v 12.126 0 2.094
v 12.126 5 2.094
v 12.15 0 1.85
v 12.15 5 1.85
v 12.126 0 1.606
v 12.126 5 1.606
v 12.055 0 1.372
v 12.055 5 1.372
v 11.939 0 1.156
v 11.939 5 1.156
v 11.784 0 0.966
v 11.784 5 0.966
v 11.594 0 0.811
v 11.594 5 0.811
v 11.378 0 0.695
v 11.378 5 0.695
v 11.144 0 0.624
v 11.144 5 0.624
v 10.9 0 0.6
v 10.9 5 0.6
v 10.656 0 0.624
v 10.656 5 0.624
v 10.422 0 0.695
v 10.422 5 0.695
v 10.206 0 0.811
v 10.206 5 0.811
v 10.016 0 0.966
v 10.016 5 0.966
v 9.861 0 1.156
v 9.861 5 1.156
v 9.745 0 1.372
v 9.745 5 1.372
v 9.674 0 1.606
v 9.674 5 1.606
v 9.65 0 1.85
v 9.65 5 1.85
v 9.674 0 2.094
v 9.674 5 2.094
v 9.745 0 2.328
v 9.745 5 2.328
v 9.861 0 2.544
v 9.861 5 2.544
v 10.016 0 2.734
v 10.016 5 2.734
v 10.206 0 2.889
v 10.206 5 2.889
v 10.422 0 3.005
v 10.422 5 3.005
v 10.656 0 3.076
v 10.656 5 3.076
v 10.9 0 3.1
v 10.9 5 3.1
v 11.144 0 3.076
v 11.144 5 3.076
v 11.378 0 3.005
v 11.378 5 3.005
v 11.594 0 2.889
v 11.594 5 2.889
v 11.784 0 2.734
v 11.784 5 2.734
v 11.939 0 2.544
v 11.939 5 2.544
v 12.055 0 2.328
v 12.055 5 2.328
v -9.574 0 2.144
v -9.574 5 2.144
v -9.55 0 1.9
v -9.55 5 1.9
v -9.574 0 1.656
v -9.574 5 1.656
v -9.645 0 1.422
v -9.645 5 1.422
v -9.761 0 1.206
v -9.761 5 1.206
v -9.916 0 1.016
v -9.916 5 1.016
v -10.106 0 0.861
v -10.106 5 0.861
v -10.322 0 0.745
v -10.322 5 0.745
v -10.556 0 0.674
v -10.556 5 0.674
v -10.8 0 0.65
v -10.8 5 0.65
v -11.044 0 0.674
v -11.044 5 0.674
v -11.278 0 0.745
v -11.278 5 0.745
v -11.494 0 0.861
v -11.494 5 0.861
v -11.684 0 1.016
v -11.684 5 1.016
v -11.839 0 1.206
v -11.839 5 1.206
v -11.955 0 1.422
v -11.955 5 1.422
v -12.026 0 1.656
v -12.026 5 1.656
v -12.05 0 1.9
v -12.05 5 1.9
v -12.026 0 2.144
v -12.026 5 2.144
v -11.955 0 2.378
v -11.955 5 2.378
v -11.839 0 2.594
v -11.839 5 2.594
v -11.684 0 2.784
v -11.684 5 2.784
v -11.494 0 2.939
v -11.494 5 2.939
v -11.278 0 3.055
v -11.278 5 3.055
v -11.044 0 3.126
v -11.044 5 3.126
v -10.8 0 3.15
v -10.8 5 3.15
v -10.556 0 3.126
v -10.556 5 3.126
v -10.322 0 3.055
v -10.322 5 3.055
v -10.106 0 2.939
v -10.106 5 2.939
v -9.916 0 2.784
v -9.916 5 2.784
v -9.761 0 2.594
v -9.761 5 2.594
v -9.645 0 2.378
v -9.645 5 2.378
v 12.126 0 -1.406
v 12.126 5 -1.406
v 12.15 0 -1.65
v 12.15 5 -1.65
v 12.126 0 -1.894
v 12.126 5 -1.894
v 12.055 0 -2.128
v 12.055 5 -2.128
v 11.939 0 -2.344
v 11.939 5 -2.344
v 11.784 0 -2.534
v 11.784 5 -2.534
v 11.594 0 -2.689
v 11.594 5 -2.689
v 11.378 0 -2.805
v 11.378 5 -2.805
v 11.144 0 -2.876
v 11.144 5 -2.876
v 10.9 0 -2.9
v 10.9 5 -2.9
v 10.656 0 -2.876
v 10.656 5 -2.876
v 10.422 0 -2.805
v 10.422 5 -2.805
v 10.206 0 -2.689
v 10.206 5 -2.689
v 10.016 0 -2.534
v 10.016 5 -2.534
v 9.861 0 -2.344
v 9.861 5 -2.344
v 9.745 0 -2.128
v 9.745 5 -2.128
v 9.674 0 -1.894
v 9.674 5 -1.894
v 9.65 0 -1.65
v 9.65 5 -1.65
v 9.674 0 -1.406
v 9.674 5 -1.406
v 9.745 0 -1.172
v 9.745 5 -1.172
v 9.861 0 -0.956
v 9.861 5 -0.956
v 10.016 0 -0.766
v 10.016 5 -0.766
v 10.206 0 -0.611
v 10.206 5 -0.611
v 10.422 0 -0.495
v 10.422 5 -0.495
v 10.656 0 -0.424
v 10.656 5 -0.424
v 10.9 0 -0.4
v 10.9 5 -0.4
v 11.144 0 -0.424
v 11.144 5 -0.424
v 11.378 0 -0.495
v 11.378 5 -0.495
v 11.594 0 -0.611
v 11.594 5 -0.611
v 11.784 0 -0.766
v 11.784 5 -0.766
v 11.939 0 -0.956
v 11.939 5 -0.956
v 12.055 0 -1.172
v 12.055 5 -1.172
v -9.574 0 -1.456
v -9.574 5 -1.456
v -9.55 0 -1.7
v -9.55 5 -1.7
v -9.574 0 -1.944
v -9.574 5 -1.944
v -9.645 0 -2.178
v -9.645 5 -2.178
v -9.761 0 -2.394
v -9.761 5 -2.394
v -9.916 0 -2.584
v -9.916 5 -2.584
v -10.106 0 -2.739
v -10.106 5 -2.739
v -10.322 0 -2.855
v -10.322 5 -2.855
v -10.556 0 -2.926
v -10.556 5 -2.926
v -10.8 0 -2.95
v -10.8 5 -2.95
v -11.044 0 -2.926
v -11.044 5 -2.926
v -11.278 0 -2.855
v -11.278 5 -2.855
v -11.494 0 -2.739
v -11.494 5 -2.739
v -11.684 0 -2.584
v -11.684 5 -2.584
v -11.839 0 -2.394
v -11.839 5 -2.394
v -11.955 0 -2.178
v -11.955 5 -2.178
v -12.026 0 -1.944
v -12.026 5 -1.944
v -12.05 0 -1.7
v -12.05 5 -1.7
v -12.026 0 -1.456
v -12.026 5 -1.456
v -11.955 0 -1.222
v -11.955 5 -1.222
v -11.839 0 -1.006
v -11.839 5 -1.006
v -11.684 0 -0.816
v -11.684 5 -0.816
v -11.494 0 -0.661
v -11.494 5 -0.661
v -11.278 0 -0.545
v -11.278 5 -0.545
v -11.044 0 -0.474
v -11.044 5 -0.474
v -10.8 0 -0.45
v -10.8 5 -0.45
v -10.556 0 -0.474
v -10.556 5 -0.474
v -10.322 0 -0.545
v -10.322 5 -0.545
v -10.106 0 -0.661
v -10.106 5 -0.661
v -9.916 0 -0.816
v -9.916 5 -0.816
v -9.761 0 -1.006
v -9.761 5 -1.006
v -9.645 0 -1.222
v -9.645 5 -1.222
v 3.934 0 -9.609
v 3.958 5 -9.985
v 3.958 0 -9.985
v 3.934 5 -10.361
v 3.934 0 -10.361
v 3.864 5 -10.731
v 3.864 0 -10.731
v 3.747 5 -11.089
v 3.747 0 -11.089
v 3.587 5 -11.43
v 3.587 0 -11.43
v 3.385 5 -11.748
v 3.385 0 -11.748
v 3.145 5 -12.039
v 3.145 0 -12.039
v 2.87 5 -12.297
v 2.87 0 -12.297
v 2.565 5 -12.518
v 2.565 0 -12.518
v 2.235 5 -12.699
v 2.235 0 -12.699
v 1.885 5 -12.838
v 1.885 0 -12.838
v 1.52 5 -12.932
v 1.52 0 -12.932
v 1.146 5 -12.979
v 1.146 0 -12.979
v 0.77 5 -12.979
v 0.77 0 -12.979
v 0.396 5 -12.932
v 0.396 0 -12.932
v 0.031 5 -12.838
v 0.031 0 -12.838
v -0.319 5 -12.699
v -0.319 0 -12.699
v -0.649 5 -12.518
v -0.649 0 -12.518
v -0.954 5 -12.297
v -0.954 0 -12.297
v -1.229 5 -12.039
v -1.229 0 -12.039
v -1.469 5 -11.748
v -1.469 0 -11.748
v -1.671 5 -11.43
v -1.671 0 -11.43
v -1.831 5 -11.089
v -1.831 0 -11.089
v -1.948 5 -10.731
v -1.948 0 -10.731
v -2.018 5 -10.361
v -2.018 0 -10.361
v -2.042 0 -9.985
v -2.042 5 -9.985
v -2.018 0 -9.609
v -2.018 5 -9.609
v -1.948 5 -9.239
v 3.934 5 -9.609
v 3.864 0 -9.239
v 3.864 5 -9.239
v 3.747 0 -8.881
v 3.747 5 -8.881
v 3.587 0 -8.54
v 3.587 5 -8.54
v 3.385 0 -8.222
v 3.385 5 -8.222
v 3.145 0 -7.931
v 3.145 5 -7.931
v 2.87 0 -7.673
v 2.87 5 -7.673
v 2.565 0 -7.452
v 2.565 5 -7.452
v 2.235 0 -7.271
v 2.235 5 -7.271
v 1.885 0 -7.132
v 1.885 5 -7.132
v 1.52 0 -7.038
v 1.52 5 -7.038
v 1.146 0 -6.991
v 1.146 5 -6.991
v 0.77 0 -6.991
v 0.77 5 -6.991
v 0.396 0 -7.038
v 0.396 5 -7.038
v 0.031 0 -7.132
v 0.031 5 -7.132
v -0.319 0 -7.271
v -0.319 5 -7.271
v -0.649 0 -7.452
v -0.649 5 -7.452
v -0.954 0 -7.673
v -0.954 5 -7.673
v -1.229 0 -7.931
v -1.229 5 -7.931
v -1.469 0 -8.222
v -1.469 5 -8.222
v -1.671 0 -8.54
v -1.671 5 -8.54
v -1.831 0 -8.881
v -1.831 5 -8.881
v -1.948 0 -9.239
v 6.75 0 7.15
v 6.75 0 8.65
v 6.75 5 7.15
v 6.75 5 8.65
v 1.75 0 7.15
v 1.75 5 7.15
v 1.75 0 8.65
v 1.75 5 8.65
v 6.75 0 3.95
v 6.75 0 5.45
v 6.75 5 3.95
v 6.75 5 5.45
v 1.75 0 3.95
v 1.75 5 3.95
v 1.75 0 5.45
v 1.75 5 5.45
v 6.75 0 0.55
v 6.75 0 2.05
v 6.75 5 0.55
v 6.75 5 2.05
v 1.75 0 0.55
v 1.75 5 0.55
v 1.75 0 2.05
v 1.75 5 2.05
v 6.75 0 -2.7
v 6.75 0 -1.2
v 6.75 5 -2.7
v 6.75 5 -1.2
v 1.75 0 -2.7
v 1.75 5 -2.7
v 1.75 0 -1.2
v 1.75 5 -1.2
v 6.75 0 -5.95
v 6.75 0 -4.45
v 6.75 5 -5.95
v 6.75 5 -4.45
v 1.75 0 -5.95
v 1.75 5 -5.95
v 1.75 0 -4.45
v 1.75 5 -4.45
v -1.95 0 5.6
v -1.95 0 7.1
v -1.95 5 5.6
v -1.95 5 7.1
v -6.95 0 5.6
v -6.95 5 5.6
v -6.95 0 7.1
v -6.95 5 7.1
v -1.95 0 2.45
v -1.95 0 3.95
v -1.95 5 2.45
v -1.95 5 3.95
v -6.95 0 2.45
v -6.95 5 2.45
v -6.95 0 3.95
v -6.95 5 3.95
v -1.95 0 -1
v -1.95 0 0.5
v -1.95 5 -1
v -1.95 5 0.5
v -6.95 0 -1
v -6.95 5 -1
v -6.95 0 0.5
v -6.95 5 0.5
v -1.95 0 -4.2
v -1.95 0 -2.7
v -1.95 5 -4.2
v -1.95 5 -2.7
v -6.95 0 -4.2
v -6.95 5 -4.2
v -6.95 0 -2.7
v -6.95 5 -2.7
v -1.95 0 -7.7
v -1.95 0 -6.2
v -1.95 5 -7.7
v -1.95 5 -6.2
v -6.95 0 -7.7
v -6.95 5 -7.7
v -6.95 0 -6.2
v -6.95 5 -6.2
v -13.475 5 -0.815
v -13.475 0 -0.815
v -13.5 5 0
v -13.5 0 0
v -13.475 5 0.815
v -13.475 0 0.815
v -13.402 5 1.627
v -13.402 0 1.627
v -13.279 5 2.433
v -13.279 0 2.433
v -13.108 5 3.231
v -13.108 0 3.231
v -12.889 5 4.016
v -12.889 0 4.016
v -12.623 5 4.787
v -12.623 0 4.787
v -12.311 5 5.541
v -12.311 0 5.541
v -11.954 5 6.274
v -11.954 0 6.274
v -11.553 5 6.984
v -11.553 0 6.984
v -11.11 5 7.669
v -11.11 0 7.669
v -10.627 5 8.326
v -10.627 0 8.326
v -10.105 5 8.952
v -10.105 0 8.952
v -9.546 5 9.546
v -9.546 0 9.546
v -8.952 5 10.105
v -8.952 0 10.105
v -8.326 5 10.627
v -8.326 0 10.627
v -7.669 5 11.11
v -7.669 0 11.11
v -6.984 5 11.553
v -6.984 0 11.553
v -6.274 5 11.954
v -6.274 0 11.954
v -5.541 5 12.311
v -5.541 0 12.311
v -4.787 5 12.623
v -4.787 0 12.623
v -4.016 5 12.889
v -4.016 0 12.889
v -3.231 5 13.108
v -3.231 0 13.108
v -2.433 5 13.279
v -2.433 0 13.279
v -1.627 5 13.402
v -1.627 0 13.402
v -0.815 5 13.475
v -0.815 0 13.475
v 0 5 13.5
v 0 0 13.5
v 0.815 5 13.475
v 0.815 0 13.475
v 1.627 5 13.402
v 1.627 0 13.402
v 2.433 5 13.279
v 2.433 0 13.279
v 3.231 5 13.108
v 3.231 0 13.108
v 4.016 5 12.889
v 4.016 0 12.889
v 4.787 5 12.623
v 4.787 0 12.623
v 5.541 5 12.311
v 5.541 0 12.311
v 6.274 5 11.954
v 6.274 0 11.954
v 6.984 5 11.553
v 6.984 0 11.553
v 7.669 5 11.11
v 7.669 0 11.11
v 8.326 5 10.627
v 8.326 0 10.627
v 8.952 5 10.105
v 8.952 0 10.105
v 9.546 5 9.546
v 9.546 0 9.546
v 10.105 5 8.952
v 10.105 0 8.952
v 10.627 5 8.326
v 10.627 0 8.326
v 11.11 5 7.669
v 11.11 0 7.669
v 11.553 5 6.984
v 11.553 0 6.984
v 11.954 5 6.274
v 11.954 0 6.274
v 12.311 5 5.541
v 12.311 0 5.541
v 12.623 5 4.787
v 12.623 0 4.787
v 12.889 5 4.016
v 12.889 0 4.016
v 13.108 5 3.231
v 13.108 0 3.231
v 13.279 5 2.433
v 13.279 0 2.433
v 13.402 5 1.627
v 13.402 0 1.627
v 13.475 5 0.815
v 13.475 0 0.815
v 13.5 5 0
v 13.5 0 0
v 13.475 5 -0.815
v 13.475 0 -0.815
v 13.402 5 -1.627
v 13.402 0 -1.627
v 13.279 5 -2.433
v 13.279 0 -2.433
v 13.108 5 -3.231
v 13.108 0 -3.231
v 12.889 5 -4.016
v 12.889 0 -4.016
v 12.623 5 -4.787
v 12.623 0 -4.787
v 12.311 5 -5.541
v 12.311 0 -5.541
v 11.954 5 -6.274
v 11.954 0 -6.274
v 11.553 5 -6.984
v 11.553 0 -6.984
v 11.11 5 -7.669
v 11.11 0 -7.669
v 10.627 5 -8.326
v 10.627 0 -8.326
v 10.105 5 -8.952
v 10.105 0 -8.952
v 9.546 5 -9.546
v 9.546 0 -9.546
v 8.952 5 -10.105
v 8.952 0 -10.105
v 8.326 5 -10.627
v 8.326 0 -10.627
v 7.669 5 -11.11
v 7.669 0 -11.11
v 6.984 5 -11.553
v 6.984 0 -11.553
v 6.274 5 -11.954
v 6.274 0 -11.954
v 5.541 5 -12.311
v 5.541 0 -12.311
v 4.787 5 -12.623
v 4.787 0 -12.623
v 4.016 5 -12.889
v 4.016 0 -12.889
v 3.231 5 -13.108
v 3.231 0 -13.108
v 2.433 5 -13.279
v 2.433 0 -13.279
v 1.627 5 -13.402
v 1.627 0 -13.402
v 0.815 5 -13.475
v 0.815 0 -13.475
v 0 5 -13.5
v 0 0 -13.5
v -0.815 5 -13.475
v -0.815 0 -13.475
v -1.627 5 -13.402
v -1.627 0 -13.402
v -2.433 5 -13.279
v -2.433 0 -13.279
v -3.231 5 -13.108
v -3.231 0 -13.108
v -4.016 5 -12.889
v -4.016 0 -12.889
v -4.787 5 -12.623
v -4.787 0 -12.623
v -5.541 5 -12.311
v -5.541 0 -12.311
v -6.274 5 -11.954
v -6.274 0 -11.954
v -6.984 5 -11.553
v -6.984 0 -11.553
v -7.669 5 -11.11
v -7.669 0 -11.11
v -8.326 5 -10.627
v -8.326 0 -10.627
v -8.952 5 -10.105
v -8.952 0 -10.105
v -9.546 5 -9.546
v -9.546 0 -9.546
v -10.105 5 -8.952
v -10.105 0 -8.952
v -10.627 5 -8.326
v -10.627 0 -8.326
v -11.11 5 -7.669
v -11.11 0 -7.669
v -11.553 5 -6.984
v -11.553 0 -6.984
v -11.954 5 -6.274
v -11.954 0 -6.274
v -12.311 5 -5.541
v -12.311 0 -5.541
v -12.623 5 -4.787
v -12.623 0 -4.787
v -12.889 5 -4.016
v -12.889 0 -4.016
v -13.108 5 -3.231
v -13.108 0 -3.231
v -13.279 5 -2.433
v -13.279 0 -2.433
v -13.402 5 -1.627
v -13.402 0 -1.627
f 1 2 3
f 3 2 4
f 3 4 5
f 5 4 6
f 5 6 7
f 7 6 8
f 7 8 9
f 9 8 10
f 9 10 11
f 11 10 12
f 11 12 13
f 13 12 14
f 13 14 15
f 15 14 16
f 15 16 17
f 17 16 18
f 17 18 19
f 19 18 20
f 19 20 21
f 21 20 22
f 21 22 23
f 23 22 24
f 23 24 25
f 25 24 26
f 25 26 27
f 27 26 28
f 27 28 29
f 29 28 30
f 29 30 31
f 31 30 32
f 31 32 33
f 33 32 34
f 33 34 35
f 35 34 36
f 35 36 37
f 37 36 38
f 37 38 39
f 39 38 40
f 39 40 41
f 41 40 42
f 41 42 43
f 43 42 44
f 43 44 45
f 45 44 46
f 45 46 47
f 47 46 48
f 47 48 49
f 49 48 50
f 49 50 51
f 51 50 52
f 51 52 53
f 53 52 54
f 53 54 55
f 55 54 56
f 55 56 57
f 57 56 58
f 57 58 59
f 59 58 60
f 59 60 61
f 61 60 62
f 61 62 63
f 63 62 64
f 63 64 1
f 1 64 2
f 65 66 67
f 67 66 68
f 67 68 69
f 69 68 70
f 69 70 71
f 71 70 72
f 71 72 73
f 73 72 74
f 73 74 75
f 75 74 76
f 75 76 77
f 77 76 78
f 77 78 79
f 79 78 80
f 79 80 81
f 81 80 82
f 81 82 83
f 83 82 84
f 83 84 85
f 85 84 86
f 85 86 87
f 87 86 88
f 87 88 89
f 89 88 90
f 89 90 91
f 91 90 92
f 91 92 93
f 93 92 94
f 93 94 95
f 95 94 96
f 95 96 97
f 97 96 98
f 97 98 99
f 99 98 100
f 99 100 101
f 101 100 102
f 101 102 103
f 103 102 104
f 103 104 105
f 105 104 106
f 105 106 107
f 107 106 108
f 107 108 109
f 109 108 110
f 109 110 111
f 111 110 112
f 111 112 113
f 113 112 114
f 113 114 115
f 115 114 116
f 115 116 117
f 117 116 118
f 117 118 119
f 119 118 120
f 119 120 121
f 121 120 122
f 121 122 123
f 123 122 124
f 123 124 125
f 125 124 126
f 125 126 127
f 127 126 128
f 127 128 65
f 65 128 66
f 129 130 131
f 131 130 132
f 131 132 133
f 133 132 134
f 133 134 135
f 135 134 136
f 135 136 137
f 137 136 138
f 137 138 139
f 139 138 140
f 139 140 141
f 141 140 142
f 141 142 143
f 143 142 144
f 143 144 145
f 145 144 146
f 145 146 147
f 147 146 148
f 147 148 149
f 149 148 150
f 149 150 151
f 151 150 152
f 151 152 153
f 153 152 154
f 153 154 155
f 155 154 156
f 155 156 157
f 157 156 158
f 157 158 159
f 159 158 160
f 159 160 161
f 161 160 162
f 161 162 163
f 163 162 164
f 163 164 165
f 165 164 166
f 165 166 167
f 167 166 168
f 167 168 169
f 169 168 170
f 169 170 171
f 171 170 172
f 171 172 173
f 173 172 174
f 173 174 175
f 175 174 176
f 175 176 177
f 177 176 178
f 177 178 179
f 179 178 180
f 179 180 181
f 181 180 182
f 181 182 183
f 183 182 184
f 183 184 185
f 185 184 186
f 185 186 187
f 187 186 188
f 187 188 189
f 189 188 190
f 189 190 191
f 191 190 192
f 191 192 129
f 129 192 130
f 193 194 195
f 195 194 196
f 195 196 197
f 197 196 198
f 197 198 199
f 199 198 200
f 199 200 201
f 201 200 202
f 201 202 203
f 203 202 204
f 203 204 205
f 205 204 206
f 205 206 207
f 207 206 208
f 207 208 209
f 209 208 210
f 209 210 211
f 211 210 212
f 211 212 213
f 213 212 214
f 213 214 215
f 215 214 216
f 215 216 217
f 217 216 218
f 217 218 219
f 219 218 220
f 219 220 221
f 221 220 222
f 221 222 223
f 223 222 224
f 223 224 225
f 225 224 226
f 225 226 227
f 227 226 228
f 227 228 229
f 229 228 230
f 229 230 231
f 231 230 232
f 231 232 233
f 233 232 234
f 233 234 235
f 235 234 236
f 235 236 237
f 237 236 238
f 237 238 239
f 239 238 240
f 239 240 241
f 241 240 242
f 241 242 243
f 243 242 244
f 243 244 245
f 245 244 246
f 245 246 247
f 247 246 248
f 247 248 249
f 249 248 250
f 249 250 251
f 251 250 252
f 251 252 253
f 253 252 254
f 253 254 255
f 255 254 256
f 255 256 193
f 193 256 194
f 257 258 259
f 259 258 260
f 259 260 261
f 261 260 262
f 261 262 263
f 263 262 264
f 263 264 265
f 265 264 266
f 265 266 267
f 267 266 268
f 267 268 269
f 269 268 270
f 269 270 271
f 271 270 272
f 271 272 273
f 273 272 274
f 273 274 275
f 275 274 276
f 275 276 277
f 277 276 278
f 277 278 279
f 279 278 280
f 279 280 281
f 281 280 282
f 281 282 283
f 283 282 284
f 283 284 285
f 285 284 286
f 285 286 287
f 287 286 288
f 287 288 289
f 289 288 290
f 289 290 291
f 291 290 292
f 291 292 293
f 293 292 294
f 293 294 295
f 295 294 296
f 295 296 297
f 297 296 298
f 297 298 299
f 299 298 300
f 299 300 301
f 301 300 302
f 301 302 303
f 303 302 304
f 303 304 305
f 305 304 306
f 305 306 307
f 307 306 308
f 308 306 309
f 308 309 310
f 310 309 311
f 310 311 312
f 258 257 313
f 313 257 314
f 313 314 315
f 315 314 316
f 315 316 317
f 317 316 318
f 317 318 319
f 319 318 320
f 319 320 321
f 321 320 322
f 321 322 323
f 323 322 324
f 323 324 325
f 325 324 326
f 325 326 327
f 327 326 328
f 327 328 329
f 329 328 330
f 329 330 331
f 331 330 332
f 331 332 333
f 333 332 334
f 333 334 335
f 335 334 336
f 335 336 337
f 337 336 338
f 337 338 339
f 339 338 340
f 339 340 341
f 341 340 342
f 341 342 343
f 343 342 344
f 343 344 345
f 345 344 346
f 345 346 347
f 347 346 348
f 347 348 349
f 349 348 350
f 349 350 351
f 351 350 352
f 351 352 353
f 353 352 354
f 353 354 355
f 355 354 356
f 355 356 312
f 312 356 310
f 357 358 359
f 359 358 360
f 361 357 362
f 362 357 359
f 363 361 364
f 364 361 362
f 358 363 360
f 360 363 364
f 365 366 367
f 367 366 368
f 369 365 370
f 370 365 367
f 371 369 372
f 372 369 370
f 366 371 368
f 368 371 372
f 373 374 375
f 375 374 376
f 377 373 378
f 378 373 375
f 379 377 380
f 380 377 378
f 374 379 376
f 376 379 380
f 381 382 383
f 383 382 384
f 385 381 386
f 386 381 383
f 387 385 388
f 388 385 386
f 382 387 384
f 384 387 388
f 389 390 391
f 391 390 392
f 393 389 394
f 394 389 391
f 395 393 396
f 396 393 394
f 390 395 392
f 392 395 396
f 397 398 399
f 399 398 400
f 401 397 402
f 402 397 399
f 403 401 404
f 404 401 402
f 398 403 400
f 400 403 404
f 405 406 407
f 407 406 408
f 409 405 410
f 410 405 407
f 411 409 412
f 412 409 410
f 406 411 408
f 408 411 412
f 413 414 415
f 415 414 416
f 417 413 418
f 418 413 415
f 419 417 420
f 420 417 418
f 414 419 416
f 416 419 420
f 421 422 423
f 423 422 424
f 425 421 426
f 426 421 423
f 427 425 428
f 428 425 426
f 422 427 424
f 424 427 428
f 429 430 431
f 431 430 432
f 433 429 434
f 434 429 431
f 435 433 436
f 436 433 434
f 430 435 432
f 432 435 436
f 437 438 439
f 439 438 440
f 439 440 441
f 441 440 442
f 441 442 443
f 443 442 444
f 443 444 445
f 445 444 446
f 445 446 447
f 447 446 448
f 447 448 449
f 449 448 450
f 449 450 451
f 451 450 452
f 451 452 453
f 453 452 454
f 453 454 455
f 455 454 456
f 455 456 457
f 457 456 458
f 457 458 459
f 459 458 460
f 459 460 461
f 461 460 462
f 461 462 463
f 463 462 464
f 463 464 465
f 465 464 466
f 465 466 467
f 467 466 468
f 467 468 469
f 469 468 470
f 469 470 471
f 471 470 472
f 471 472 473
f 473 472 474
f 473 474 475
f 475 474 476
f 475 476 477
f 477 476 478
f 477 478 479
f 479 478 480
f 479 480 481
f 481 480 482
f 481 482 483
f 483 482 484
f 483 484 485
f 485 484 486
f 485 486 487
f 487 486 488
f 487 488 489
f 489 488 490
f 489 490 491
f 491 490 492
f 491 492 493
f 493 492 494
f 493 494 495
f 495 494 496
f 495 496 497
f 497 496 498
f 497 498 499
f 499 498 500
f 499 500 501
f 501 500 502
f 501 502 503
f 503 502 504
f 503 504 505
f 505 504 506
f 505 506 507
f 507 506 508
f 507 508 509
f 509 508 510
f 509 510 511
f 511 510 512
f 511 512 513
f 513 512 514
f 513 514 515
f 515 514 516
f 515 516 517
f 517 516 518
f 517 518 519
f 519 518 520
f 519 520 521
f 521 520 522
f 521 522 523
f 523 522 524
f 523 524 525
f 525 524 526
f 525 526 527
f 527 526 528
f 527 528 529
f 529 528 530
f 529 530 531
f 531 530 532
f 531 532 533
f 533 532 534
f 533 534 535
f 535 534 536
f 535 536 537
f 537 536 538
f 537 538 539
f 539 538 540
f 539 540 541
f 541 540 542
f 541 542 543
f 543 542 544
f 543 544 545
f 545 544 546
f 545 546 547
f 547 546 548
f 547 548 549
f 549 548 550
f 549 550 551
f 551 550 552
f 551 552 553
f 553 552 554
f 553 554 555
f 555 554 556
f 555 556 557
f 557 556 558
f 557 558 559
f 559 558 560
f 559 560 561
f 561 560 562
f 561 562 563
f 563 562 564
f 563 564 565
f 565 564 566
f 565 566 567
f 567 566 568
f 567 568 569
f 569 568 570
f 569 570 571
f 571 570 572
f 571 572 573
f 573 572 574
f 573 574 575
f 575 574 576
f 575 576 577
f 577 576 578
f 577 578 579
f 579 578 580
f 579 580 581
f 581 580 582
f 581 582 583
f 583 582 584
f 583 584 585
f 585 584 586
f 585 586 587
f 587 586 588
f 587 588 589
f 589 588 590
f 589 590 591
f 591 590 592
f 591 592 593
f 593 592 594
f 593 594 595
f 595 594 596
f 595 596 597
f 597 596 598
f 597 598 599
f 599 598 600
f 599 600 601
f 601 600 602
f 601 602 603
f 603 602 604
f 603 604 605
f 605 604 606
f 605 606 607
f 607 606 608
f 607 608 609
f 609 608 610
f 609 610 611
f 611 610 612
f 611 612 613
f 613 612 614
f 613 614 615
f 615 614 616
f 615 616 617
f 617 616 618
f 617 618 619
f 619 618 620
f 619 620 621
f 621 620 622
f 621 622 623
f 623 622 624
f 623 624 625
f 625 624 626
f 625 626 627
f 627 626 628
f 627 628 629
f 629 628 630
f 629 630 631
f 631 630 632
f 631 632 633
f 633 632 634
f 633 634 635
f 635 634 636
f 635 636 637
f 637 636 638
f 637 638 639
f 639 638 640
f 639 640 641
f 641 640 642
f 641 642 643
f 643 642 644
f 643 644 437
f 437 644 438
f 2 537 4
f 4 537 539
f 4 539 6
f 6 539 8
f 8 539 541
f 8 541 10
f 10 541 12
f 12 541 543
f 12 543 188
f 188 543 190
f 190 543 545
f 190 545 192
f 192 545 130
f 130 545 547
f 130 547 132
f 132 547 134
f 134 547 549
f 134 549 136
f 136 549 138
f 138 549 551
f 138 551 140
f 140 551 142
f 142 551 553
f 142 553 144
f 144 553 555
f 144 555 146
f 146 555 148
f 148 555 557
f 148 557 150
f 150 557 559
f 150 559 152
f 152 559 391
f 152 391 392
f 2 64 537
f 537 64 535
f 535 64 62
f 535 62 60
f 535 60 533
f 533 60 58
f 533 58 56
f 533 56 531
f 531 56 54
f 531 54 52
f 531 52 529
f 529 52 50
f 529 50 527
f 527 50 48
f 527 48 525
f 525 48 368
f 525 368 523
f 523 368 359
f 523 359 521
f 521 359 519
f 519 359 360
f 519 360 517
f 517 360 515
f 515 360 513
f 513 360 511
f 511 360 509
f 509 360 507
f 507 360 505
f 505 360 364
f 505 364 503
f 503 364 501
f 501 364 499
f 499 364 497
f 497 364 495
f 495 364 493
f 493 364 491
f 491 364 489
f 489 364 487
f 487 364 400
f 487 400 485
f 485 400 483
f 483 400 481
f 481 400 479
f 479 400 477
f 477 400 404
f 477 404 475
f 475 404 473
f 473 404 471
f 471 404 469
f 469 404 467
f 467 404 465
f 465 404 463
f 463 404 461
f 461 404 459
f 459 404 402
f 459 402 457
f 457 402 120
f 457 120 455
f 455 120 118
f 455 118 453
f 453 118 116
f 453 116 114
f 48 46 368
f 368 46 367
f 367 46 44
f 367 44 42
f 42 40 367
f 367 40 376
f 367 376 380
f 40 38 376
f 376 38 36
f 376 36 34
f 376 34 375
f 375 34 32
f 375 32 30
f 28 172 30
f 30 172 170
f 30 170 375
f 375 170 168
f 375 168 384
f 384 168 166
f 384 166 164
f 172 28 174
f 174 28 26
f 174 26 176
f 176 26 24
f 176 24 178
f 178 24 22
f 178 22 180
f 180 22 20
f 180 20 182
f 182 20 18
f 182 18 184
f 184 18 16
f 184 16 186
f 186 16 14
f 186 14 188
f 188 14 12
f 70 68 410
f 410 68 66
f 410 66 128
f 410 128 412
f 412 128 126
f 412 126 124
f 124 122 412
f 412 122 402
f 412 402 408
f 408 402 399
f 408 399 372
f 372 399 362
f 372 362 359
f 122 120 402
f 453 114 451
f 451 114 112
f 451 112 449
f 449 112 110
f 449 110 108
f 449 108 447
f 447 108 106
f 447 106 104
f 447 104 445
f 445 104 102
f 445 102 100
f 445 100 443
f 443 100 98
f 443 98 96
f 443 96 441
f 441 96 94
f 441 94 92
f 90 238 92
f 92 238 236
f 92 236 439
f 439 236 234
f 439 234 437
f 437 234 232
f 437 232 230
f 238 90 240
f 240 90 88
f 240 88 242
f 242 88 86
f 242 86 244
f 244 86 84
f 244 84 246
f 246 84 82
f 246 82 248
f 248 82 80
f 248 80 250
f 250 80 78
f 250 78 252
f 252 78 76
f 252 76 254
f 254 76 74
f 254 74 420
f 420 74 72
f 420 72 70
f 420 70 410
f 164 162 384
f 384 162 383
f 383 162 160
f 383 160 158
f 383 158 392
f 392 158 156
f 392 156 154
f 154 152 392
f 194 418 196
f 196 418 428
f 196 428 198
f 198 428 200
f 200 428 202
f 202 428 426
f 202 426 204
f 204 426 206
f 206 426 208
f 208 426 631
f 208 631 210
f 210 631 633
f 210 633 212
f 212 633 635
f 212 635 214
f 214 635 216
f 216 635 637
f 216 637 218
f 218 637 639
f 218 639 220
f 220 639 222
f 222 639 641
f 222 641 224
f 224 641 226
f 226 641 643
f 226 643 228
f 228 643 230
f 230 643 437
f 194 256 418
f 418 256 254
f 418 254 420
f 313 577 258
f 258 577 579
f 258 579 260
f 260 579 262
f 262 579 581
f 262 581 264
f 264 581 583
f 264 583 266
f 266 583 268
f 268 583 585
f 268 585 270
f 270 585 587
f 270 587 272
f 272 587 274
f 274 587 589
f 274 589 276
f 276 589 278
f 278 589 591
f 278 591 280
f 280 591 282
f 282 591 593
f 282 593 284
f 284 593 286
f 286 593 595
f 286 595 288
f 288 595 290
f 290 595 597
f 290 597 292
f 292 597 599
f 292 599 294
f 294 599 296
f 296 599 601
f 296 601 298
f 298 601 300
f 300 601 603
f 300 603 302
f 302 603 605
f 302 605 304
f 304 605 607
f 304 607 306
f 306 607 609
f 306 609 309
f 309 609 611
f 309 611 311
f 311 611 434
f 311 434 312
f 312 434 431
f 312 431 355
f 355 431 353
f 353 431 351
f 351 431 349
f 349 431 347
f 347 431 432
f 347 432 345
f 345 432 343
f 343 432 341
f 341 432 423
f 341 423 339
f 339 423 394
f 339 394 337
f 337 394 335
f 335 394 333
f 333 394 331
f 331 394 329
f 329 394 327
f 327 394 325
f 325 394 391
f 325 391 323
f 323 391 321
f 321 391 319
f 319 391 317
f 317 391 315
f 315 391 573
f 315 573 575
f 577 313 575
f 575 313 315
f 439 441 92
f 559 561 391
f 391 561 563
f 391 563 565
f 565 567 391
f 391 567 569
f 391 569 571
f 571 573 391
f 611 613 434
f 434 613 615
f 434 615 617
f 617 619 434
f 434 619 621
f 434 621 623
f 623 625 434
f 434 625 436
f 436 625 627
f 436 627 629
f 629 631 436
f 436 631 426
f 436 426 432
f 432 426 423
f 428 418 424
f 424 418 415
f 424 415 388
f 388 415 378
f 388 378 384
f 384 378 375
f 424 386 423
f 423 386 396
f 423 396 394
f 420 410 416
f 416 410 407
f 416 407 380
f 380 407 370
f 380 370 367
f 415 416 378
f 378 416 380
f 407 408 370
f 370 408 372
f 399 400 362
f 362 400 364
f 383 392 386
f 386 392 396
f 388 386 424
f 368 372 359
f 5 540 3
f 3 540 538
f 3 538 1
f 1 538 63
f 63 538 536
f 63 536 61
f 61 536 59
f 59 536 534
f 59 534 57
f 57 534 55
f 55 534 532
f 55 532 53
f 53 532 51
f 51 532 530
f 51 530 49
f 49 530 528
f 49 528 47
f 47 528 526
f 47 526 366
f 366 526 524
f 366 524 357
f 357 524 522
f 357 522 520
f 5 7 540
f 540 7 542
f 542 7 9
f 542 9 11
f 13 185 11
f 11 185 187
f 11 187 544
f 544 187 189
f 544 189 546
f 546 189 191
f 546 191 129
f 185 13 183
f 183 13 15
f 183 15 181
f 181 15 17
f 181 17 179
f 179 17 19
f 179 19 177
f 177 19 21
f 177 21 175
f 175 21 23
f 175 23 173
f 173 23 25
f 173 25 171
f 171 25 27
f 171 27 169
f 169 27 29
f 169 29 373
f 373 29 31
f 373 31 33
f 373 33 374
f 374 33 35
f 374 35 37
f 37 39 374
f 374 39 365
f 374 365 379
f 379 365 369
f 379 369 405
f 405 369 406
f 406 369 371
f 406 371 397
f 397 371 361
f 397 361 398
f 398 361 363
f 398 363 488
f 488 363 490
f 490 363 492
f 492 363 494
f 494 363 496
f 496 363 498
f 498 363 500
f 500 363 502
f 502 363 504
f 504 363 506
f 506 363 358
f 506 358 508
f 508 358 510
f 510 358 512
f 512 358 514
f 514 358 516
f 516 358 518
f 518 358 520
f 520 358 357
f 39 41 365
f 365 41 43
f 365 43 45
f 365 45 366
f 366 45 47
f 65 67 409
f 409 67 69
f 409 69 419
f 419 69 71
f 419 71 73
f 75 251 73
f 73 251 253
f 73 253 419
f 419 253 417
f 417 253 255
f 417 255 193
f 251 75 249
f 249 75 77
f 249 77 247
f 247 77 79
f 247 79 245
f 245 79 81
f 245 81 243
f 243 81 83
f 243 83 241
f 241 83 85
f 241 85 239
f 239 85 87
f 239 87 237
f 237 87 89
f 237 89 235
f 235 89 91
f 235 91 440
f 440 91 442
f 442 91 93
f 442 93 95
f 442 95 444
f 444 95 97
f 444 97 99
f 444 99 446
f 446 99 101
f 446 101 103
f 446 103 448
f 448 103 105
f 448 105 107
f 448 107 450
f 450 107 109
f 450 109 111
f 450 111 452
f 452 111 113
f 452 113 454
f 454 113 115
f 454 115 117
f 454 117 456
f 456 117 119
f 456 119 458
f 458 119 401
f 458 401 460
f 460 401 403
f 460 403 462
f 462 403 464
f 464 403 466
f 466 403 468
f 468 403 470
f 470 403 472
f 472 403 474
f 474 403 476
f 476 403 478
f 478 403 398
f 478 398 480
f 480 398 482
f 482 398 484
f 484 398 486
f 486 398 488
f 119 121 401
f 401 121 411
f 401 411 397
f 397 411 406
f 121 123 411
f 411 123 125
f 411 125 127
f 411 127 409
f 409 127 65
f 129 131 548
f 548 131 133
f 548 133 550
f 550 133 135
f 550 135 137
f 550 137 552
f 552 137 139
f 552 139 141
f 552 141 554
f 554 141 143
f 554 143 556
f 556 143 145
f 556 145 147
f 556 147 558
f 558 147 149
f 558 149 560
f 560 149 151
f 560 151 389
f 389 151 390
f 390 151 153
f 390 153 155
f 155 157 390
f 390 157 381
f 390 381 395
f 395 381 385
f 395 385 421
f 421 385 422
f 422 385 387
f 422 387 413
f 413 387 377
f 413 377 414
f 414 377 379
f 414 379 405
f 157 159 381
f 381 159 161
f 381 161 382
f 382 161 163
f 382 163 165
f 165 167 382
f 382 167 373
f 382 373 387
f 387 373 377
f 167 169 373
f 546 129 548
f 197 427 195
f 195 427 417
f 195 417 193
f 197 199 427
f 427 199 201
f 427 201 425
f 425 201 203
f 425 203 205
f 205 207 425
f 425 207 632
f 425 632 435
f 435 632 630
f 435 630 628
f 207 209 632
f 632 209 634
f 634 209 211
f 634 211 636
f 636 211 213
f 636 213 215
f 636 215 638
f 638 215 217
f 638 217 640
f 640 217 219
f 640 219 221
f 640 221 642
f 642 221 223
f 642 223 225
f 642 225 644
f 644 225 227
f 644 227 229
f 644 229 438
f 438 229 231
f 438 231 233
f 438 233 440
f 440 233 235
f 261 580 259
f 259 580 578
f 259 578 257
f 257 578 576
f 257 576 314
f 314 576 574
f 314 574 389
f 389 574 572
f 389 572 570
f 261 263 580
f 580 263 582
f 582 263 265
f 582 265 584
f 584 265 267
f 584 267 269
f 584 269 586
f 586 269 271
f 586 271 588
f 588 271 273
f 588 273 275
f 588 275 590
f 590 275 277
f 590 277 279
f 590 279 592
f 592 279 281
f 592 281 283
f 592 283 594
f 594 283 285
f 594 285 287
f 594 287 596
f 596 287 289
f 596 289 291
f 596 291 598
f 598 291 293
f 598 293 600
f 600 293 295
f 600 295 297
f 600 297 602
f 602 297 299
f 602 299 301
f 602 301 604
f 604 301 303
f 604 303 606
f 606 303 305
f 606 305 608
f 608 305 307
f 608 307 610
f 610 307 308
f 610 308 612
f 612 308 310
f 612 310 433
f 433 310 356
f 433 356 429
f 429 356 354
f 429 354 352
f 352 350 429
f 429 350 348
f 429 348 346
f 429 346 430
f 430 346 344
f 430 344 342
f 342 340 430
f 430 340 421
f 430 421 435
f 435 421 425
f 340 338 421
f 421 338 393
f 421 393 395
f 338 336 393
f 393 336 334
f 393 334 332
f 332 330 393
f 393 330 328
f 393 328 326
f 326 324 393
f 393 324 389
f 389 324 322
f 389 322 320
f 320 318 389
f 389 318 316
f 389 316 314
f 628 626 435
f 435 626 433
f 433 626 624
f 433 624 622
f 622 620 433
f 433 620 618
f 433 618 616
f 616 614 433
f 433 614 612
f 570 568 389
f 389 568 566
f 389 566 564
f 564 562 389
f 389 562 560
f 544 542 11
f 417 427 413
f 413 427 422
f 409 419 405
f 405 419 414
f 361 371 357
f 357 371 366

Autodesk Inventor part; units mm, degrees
ref_plane "YZ Plane" through (0, 0, 0) normal (1, 0, 0) x (0, 1, 0)
ref_plane "XZ Plane" through (0, 0, 0) normal (0, 1, 0) x (-1, 0, 0)
ref_plane "XY Plane" through (0, 0, 0) normal (0, 0, 1) x (1, 0, 0)
sketch "Sketch3" plane through (0, 0, 0) normal (0, 1, 0) x (-1, 0, 0)
  circle A0 centre (0, 0) radius 13.5
  line L0 (-6.7499, 8.6501) -> (-1.7499, 8.6501)
  line L1 (-1.7499, 8.6501) -> (-1.7499, 7.1501)
  line L2 (-1.7499, 7.1501) -> (-6.7499, 7.1501)
  line L3 (-6.7499, 7.1501) -> (-6.7499, 8.6501)
  line L4 (-6.75, 5.45) -> (-1.7499, 5.45)
  line L5 (-1.7499, 5.45) -> (-1.7499, 3.95)
  line L6 (-1.7499, 3.95) -> (-6.75, 3.95)
  line L7 (-6.75, 3.95) -> (-6.75, 5.45)
  line L8 (-6.75, 2.0498) -> (-1.75, 2.0498)
  line L9 (-1.75, 2.0498) -> (-1.75, 0.5498)
  line L10 (-1.75, 0.5498) -> (-6.75, 0.5498)
  line L11 (-6.75, 0.5498) -> (-6.75, 2.0498)
  line L12 (-6.75, -1.2) -> (-1.75, -1.2)
  line L13 (-1.75, -1.2) -> (-1.75, -2.7)
  line L14 (-1.75, -2.7) -> (-6.75, -2.7)
  line L15 (-6.75, -2.7) -> (-6.75, -1.2)
  line L16 (-6.75, -4.4501) -> (-1.75, -4.4501)
  line L17 (-1.75, -4.4501) -> (-1.75, -5.9501)
  line L18 (-1.75, -5.9501) -> (-6.75, -5.9501)
  line L19 (-6.75, -5.9501) -> (-6.75, -4.4501)
  line L20 (1.9499, 7.1) -> (6.9499, 7.1)
  line L21 (6.9499, 7.1) -> (6.9499, 5.6)
  line L22 (6.9499, 5.6) -> (1.9499, 5.6)
  line L23 (1.9499, 5.6) -> (1.9499, 7.1)
  line L24 (1.9499, 3.95) -> (6.9499, 3.95)
  line L25 (6.9499, 3.95) -> (6.9499, 2.45)
  line L26 (6.9499, 2.45) -> (1.9499, 2.45)
  line L27 (1.9499, 2.45) -> (1.9499, 3.95)
  line L28 (1.9499, 0.5004) -> (6.9499, 0.5004)
  line L29 (6.9499, 0.5004) -> (6.9499, -0.9996)
  line L30 (6.9499, -0.9996) -> (1.9499, -0.9996)
  line L31 (1.9499, -0.9996) -> (1.9499, 0.5004)
  line L32 (1.9499, -2.7) -> (6.9499, -2.7)
  line L33 (6.9499, -2.7) -> (6.9499, -4.2)
  line L34 (6.9499, -4.2) -> (1.9499, -4.2)
  line L35 (1.9499, -4.2) -> (1.9499, -2.7)
  line L36 (1.9499, -6.1999) -> (6.9499, -6.1999)
  line L37 (6.9499, -6.1999) -> (6.9499, -7.6999)
  line L38 (6.9499, -7.6999) -> (1.9499, -7.6999)
  line L39 (1.9499, -7.6999) -> (1.9499, -6.1999)
  point P0 (-6.7499, 7.9001)
  point P1 (-6.75, 4.7)
  point P2 (-5.95, -5.2001)
  dimension "d3" = 27
  dimension "d4" = 5
  dimension "d5" = 1.5
  dimension "d6" = 1.5
  dimension "d7" = 5
  dimension "d8" = 1.5
  dimension "d9" = 5
  dimension "d10" = 1.5
  dimension "d11" = 5
  dimension "d12" = 1.5
  dimension "d13" = 0.8
  dimension "d14" = 5
  dimension "d15" = 1.5
  dimension "d16" = 5
  dimension "d17" = 1.5
  dimension "d18" = 5
  dimension "d19" = 1.5
  dimension "d20" = 5
  dimension "d21" = 1.5
  dimension "d22" = 1.5
extrude "Extrusion1" add sketch "Sketch3" along normal blind 5
sketch "Sketch4" plane through (0, 5, 0) normal (0, 1, 0) x (1, 0, 0)
  circle A0 centre (-10.8, -1.9) radius 0.75
  circle A1 centre (-10.8, 1.7) radius 0.75
  circle A2 centre (10.9, -1.85) radius 0.75
  circle A3 centre (10.9, 1.65) radius 0.75
  circle A4 centre (0.958, 9.985) radius 3
  point P0 (0, 0)
  dimension "d25" = 1.5
  dimension "d26" = 1.5
  dimension "d27" = 1.5
  dimension "d28" = 1.5
  dimension "d29" = 6
extrude "Extrusion2" cut sketch "Sketch4" against normal blind 5
sketch "Sketch5" plane through (0, 5, 0) normal (0, 1, 0) x (1, 0, 0)
  circle A0 centre (-10.8, -1.9) radius 0.75 projected
  circle A1 centre (-10.8, -1.9) radius 1.25
  circle A2 centre (-10.8, 1.7) radius 0.75 projected
  circle A3 centre (-10.8, 1.7) radius 1.25
  circle A4 centre (10.9, -1.85) radius 0.75 projected
  circle A5 centre (10.9, -1.85) radius 1.25
  circle A6 centre (10.9, 1.65) radius 0.75 projected
  circle A7 centre (10.9, 1.65) radius 1.25
  point P0 (0, 0)
  dimension "d33" = 2.5
  dimension "d34" = 2.5
  dimension "d35" = 2.5
  dimension "d36" = 2.5
extrude "Extrusion3" cut sketch "Sketch5" against normal blind 5 contours A0 | A1 | A2 | A3 | A4 | A5 | A6 | A7
properties part number "Seperator"
